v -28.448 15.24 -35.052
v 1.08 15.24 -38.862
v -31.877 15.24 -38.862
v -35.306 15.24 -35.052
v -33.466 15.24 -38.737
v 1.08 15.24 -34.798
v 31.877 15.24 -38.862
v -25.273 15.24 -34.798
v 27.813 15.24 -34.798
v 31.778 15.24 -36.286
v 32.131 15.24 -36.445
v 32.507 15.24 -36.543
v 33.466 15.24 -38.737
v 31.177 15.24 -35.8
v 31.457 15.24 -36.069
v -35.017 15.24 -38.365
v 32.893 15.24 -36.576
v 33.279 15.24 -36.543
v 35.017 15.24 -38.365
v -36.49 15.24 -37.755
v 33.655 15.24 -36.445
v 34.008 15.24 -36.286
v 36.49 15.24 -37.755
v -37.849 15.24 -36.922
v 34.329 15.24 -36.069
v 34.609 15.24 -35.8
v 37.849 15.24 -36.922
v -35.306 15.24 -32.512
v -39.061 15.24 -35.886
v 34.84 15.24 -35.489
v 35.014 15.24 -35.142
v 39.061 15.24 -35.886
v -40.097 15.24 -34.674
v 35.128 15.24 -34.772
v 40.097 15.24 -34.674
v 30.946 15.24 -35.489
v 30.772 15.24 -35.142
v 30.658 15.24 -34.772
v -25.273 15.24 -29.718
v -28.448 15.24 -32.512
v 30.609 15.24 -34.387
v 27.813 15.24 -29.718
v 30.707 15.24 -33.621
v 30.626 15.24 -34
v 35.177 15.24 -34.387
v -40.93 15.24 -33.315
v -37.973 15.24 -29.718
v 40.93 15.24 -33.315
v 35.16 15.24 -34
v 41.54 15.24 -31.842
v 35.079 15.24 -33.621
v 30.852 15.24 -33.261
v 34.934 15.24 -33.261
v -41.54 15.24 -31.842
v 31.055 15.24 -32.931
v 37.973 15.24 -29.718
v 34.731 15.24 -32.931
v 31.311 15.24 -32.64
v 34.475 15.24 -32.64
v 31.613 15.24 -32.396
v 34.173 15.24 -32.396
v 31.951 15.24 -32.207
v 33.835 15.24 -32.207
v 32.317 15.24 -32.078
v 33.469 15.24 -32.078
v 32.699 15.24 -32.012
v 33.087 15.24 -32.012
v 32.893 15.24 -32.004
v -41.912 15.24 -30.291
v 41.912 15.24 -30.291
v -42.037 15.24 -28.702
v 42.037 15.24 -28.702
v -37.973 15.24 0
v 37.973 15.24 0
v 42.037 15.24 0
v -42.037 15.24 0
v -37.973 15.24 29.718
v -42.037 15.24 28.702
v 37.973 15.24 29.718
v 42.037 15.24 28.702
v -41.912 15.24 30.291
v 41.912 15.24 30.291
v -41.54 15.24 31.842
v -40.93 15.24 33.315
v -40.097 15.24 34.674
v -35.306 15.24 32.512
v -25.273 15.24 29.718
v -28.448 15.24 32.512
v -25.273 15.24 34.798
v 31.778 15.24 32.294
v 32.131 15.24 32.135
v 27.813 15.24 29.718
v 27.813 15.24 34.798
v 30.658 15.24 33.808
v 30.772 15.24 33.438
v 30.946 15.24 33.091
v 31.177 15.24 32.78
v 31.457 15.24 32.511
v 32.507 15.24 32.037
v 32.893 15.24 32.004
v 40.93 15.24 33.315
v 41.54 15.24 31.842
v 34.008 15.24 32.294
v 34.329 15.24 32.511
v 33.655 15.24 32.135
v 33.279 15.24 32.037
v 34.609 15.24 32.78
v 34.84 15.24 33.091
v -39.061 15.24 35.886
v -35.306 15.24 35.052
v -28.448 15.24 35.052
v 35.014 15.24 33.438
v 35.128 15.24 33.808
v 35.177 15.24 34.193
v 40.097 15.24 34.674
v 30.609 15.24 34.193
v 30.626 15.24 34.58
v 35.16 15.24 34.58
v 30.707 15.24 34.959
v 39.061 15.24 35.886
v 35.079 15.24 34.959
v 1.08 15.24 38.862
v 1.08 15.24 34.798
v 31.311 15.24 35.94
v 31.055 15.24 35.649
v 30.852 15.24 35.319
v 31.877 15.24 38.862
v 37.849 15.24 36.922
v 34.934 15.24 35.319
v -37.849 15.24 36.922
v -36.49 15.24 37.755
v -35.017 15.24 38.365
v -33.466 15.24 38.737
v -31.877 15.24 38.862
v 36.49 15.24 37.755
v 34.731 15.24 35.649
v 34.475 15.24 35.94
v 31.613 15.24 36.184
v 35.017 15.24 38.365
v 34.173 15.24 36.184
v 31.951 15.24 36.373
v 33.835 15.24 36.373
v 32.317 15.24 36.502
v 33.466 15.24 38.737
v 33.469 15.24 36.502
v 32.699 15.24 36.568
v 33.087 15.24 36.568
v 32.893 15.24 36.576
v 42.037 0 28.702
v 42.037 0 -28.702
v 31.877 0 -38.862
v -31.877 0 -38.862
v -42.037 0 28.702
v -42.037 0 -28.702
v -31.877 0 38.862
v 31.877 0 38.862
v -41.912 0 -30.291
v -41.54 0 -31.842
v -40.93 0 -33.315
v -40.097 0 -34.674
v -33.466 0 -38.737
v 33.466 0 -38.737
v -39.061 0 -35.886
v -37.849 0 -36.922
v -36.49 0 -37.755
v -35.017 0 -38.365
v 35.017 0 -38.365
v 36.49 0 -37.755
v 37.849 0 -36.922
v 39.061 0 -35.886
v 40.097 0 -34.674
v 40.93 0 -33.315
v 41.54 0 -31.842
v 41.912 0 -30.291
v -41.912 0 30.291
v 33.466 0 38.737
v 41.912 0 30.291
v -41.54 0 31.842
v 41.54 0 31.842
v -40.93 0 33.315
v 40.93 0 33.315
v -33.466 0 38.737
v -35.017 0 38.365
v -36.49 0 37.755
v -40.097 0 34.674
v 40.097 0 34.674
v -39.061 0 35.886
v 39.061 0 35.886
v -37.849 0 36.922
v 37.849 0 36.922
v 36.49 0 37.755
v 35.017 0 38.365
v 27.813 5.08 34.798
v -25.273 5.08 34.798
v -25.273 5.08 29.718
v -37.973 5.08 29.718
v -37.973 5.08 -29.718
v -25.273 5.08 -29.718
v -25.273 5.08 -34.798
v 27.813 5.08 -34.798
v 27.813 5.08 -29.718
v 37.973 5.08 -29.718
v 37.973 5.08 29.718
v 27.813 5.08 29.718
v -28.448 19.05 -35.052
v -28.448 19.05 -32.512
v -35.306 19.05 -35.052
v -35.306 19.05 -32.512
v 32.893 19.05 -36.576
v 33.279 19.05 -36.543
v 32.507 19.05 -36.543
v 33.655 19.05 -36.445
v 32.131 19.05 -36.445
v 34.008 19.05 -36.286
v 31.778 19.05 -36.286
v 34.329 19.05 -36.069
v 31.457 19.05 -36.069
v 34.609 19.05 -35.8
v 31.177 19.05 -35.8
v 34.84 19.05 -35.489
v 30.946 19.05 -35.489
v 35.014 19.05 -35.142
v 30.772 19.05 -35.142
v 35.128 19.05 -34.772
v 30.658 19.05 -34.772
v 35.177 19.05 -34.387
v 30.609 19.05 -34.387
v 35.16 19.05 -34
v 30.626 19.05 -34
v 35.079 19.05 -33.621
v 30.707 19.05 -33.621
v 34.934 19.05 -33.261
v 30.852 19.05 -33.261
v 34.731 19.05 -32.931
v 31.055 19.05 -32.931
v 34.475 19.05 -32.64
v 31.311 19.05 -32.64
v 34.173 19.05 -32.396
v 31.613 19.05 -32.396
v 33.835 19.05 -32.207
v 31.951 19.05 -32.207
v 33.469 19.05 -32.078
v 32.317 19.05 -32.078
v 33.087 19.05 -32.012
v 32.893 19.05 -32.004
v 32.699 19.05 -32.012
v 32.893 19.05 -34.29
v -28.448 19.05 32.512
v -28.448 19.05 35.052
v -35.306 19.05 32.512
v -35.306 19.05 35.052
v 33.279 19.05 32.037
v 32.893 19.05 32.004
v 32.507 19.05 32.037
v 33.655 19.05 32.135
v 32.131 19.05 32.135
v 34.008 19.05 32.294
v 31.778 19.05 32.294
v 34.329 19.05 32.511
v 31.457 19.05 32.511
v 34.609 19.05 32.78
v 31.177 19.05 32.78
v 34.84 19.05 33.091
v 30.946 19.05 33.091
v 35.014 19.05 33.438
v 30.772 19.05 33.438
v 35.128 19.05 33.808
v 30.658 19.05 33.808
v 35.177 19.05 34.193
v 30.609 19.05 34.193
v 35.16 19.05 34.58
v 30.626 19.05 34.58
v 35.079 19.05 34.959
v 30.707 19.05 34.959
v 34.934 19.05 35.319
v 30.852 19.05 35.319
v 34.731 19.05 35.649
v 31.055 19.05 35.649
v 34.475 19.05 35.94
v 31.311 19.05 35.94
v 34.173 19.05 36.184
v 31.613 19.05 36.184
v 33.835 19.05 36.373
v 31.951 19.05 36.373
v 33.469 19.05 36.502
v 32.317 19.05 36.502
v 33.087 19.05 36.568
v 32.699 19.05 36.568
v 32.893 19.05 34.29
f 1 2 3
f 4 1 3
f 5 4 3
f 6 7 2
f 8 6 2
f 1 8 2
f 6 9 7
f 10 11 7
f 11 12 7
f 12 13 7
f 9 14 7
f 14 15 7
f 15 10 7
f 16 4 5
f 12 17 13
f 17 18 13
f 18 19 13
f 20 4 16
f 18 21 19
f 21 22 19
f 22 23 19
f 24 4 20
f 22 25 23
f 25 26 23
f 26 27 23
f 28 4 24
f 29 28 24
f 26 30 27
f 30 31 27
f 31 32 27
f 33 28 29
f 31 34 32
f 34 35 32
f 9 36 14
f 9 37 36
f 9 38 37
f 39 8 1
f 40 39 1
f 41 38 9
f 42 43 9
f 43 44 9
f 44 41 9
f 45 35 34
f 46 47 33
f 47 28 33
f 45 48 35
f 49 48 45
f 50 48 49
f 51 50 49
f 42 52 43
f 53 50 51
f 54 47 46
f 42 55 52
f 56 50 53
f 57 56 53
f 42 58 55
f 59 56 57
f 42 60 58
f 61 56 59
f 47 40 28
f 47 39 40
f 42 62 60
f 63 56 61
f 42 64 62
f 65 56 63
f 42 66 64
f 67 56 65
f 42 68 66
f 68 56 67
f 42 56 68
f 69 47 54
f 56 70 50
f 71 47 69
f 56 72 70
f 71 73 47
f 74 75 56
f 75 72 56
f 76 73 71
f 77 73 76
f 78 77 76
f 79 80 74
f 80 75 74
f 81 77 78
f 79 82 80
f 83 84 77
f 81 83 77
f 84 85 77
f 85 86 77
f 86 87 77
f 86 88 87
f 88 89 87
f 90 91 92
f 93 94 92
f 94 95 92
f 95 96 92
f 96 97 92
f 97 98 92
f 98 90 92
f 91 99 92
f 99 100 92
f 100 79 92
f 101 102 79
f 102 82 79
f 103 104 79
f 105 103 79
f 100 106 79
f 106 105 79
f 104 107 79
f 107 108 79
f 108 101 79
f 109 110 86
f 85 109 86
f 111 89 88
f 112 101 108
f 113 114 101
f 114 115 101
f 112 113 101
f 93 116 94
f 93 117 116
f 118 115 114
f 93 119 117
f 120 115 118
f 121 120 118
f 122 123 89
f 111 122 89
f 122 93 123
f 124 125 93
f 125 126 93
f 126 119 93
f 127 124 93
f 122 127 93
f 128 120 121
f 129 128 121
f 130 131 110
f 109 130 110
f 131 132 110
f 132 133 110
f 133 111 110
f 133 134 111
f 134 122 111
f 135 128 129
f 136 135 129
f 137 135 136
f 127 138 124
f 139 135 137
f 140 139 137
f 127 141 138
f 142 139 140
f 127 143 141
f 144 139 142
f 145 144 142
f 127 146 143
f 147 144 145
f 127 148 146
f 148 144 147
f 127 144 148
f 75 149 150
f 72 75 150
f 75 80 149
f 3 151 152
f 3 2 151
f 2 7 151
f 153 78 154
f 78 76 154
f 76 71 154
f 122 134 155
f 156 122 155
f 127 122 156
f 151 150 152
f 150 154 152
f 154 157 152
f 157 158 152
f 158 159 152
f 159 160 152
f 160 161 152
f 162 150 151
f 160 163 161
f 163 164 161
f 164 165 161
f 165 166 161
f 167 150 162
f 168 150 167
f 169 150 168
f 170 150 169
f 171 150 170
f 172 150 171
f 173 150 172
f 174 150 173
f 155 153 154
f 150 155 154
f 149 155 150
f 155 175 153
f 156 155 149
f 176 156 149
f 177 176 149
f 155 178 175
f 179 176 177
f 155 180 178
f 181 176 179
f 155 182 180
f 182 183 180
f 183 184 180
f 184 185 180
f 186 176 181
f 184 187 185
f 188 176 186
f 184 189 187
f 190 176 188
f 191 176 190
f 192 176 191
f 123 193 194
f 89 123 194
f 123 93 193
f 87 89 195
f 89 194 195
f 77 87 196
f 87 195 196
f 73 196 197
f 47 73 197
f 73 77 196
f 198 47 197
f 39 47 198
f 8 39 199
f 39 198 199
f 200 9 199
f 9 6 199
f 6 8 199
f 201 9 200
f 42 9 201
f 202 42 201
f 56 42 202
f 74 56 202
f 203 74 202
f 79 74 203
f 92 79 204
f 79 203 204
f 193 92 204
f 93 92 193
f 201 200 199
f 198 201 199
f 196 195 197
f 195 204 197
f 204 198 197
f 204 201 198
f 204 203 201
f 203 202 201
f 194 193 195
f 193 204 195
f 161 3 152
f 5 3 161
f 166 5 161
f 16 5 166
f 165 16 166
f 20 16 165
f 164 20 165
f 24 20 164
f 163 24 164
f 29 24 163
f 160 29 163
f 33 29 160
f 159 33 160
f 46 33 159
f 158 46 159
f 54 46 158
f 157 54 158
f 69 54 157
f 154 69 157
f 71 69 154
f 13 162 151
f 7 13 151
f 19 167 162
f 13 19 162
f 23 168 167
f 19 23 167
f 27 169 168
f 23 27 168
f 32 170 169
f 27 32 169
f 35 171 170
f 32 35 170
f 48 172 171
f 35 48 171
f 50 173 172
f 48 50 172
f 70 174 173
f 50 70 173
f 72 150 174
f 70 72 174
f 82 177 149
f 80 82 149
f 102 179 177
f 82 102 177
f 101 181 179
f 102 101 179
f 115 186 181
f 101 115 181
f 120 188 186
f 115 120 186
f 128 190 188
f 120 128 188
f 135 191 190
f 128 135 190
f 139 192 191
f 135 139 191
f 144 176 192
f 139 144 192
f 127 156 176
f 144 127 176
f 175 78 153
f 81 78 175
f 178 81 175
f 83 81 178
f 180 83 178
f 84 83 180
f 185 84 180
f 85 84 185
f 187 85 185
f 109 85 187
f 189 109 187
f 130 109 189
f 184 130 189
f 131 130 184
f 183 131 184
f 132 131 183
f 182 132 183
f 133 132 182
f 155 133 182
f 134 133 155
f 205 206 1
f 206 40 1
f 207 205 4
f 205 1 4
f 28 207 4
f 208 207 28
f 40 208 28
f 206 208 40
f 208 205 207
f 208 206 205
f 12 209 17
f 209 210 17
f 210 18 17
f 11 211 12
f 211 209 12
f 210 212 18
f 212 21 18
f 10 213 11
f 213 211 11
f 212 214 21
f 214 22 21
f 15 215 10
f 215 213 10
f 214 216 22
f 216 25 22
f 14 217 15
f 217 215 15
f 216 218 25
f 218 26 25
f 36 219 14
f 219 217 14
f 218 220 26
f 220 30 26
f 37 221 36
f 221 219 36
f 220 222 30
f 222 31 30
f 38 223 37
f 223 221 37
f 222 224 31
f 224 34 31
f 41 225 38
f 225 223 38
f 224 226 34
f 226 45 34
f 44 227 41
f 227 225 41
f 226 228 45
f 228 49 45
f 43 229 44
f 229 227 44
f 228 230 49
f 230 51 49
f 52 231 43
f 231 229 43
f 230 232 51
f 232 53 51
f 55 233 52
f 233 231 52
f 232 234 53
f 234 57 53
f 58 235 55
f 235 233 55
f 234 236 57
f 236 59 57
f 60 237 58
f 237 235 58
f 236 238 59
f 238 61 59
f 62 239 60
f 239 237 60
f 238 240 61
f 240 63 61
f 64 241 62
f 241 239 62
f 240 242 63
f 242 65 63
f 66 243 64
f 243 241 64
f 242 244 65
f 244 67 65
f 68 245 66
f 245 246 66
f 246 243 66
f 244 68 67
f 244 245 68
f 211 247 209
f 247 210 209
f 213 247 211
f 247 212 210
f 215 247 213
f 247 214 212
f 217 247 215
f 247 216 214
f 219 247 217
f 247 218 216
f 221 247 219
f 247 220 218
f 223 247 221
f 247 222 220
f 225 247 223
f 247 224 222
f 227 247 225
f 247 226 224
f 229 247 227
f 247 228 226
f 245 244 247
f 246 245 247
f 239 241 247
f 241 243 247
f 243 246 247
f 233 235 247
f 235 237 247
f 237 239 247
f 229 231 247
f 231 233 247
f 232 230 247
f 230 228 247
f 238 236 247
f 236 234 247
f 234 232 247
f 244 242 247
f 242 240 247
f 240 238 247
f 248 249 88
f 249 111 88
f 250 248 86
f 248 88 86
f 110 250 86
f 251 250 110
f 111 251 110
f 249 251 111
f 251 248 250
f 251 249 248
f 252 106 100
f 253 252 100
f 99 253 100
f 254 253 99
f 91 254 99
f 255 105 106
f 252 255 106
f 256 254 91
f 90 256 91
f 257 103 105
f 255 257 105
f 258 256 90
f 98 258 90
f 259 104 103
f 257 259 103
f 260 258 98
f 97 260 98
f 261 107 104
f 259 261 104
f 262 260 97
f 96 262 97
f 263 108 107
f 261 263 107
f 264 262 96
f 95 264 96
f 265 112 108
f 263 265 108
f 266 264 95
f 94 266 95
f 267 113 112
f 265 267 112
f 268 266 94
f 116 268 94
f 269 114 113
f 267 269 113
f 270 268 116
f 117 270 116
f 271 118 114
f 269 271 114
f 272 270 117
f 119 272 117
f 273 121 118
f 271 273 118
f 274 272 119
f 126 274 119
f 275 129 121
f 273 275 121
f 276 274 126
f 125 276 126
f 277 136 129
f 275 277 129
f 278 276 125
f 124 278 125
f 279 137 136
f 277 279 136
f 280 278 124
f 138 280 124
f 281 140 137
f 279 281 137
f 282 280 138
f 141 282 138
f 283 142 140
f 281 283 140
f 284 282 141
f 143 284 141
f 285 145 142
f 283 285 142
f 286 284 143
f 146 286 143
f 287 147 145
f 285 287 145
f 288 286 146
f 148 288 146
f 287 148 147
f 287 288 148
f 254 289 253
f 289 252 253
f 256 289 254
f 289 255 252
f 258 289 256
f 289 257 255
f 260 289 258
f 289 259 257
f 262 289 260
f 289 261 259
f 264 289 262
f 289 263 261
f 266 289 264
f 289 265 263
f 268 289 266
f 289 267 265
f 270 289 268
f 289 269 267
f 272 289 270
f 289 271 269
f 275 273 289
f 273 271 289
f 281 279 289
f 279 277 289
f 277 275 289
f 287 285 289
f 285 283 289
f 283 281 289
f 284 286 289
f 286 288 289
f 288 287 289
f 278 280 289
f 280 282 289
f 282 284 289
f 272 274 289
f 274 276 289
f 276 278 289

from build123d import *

# Parameters (mm, degrees)
SKETCH1_W           = 84.074
SKETCH1_H           = 77.724
BOSS_EXTRUDE1_DEPTH = 5.08
SKETCH2_W           = 84.074
SKETCH2_H           = 77.724
BOSS_EXTRUDE2_DEPTH = 10.16
FILLET1_R           = 10.16
SKETCH3_R           = 2.286
SKETCH3_W           = 6.858
SKETCH3_H           = 2.54
BOSS_EXTRUDE3_DEPTH = 3.81


with BuildPart() as part:
    # Sketch1 → Boss-Extrude1 (new body)
    with BuildSketch(Plane(origin=(0, 0, 0), x_dir=(1, 0, 0), z_dir=(0, 1, 0))):
        Rectangle(SKETCH1_W, SKETCH1_H)
    extrude(amount=BOSS_EXTRUDE1_DEPTH)

    # Sketch2 → Boss-Extrude2 (add)
    with BuildSketch(Plane(origin=(0, 5.08, 0), x_dir=(1, 0, 0), z_dir=(0, 1, 0))):
        Rectangle(SKETCH2_W, SKETCH2_H)
        Polygon((-37.973, -29.718), (-37.973, 29.718), (-25.273, 29.718), (-25.273, 34.798), (27.813, 34.798), (27.813, 29.718), (37.973, 29.718), (37.973, -29.718), (27.813, -29.718), (27.813, -34.798), (-25.273, -34.798), (-25.273, -29.718), align=None, mode=Mode.SUBTRACT)
    extrude(amount=BOSS_EXTRUDE2_DEPTH)

    # Fillet1
    fillet1_edges = [part.edges().sort_by_distance(p)[0] for p in [
        (42.037, 7.62, 38.862),
        (-42.037, 7.62, 38.862),
        (-42.037, 7.62, -38.862),
        (42.037, 7.62, -38.862),
    ]]
    fillet(fillet1_edges, radius=FILLET1_R)

    # Sketch3 → Boss-Extrude3 (add)
    with BuildSketch(Plane(origin=(0, 15.24, 0), x_dir=(1, 0, 0), z_dir=(0, 1, 0))):
        with Locations((32.893, 34.29)):
            Circle(SKETCH3_R)
        with Locations((-31.877, 33.782)):
            Rectangle(SKETCH3_W, SKETCH3_H)
    boss_extrude3 = extrude(amount=BOSS_EXTRUDE3_DEPTH)

    # Mirror1: Boss-Extrude3 across plane
    add(boss_extrude3.mirror(Plane.XY))


solid = part.part
